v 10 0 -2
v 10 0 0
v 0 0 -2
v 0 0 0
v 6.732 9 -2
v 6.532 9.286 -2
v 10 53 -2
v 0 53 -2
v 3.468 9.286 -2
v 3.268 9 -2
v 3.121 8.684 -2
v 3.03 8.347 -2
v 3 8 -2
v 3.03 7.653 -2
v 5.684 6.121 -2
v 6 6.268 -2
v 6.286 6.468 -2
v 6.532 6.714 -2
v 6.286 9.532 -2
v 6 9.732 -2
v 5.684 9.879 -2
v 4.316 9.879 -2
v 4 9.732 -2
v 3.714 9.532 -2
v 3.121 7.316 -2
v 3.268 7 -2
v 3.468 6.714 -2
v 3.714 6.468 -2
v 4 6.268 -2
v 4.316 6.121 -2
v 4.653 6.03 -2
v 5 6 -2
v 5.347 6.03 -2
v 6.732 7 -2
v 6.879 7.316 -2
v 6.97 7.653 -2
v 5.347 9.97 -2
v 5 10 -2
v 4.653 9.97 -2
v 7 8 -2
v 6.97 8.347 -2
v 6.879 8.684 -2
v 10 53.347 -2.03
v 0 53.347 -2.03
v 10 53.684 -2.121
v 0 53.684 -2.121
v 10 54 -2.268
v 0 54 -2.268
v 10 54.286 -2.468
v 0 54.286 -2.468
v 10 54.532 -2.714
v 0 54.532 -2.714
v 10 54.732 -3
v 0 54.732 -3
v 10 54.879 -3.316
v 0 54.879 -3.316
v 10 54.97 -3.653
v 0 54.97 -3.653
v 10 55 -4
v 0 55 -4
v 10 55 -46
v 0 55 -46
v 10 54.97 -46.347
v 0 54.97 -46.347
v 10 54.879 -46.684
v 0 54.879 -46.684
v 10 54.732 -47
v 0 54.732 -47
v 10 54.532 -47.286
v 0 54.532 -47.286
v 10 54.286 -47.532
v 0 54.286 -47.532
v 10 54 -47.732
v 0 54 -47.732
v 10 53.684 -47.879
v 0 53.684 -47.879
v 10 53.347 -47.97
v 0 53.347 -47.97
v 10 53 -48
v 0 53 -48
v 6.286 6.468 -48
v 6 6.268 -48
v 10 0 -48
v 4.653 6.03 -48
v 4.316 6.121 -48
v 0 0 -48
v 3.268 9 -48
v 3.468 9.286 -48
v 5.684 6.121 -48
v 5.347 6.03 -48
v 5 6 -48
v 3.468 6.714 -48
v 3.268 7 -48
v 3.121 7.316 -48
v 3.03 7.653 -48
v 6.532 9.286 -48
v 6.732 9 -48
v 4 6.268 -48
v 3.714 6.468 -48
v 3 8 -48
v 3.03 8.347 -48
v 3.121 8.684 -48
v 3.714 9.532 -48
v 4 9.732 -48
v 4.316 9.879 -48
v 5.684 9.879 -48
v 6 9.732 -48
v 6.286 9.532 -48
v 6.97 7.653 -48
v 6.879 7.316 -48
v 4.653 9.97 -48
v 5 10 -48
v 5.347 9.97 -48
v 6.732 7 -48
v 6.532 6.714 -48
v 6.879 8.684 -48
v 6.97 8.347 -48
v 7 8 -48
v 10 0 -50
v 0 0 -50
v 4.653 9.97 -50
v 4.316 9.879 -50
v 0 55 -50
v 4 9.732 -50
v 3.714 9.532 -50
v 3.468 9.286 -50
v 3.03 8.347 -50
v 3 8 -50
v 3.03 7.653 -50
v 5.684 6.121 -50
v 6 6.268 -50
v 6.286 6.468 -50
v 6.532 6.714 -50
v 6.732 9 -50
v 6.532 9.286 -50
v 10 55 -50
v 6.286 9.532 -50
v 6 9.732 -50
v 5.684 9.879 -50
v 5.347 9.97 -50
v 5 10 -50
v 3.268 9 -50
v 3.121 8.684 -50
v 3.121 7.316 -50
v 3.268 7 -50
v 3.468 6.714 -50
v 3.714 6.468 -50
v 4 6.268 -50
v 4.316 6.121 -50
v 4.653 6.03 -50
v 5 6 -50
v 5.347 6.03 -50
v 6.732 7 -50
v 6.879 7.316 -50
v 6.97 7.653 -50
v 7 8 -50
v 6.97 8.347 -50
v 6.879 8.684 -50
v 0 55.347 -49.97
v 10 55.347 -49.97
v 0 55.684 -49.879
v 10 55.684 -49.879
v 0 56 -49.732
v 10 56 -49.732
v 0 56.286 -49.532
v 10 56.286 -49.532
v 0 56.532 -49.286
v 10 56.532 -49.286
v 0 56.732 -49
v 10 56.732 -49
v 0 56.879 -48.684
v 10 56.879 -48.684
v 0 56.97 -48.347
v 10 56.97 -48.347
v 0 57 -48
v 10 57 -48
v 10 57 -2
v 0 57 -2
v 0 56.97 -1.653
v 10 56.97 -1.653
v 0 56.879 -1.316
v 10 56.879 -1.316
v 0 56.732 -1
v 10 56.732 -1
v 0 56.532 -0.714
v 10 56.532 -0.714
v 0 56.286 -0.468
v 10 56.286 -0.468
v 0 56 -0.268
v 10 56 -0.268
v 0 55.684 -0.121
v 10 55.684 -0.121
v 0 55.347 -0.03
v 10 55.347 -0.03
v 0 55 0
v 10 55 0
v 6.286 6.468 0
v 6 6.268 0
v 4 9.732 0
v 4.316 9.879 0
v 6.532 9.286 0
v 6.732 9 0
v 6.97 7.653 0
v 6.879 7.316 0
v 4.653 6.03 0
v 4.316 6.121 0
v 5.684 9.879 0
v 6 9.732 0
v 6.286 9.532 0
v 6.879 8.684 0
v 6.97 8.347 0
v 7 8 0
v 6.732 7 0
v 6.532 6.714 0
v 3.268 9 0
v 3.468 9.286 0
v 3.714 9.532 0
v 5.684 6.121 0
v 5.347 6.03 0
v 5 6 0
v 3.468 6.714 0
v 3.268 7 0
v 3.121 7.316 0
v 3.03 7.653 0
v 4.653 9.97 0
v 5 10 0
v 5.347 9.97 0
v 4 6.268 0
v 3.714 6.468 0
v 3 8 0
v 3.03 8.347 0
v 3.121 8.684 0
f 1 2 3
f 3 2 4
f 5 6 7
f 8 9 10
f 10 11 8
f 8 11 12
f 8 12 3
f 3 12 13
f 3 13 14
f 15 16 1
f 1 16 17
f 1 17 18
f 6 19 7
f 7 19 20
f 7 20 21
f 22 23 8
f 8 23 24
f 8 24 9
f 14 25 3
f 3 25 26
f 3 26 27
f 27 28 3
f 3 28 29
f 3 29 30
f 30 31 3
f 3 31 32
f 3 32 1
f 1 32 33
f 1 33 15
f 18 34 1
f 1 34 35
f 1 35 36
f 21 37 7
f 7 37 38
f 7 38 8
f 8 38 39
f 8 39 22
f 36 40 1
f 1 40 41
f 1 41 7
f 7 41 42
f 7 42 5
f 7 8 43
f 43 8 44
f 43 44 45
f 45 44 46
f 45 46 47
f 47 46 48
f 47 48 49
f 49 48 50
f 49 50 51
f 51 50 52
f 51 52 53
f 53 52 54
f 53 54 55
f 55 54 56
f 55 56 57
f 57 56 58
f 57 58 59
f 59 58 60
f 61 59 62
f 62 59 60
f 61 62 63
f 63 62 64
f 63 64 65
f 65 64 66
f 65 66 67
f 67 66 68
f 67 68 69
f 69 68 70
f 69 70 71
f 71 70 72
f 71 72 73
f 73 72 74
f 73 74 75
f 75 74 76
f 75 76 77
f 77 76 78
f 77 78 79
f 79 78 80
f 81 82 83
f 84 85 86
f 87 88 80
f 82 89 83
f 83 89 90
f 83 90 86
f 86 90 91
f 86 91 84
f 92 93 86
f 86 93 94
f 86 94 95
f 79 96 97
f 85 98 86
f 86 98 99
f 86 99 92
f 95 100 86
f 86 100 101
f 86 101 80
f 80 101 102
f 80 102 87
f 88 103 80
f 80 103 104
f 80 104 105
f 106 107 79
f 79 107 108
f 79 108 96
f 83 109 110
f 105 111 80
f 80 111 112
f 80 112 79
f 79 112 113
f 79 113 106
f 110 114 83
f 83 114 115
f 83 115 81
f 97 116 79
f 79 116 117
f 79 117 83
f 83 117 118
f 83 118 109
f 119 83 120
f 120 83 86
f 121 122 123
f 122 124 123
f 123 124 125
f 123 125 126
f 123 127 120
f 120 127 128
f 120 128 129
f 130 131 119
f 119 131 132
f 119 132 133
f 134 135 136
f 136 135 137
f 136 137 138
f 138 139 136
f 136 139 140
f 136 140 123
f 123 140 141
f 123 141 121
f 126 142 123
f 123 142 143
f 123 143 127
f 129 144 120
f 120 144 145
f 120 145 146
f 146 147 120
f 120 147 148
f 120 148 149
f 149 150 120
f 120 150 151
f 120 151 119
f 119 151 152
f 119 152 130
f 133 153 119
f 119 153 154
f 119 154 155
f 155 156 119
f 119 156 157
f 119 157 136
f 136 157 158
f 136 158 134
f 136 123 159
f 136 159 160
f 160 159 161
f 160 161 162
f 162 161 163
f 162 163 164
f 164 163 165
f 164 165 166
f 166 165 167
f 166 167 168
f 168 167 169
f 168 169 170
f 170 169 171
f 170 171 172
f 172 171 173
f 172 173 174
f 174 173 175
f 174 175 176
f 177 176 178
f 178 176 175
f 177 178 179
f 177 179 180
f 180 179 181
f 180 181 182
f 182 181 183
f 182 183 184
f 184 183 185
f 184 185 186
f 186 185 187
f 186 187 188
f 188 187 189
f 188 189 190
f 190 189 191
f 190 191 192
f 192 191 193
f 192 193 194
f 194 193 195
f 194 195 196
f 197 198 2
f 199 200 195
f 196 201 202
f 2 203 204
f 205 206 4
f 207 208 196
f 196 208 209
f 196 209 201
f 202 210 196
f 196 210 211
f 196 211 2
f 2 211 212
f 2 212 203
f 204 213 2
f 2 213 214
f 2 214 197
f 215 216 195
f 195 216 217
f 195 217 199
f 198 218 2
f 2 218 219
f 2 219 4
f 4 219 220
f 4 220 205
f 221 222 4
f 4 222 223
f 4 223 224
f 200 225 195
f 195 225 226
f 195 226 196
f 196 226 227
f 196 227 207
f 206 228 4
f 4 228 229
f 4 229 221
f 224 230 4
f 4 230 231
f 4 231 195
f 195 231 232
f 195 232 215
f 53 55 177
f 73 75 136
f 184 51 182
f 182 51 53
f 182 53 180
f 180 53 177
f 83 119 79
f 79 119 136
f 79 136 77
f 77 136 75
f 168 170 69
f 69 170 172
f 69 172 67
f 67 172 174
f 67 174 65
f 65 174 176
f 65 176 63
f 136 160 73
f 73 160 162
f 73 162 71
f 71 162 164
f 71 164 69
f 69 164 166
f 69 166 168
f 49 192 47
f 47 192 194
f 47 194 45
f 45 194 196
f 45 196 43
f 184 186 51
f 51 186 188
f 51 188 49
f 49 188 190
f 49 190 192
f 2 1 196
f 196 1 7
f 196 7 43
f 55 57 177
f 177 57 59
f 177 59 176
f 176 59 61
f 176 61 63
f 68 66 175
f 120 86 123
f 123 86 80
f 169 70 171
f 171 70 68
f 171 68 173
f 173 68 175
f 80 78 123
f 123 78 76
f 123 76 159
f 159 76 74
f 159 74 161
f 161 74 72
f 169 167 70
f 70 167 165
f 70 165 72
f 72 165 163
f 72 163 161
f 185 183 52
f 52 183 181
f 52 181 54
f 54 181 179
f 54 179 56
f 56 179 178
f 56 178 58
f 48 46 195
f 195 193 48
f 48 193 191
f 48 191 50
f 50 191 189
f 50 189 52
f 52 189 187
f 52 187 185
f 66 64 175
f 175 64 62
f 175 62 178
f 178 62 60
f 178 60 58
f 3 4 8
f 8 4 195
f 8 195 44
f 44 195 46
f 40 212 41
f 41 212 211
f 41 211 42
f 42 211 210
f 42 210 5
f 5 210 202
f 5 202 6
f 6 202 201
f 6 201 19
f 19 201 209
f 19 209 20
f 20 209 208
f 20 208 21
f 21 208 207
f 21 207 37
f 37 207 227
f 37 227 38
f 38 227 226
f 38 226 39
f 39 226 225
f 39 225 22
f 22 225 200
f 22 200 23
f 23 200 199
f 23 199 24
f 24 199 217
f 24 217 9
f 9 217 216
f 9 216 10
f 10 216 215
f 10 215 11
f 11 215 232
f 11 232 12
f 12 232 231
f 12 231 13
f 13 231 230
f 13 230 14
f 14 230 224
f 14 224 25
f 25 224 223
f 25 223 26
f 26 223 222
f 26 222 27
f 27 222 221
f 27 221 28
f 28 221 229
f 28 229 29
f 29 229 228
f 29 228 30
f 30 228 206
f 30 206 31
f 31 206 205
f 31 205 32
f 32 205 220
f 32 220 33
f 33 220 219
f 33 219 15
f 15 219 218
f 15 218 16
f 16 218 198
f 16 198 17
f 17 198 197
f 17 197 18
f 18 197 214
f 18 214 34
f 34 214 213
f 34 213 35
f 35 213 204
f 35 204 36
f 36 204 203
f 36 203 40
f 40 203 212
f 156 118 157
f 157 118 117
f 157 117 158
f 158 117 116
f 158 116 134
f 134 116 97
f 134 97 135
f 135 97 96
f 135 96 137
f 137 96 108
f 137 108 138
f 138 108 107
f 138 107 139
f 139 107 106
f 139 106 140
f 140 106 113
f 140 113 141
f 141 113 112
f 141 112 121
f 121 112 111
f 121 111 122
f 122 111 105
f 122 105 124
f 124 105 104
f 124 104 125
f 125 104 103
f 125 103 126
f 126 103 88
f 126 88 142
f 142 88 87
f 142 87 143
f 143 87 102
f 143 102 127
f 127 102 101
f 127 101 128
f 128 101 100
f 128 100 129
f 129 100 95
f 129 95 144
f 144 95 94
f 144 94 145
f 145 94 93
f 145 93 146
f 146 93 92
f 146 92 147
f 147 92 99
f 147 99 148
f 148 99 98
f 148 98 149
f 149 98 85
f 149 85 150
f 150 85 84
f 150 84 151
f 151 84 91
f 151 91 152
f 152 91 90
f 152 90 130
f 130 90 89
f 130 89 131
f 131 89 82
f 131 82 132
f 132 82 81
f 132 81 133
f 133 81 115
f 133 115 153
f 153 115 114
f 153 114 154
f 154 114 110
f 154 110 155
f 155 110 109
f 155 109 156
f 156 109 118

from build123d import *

# Parameters (mm, degrees)
EXTRUDE_1_DEPTH     = 10
SKETCH_2_R          = 2
CUT_EXTRUDE_1_DEPTH = 77.47875522


with BuildPart() as part:
    # 草图1 → 凸台-拉伸1 (new body)
    with BuildSketch(Plane(origin=(0, 0, 0), x_dir=(0, 0, -1), z_dir=(1, 0, 0))):
        with BuildLine():
            Line((0, 0), (0, 55))
            ThreePointArc((0, 55), (0.585786438, 56.414213562), (2, 57))
            Line((2, 57), (48, 57))
            ThreePointArc((48, 57), (49.414213562, 56.414213562), (50, 55))
            Line((50, 55), (50, 0))
            Line((50, 0), (48, 0))
            Line((48, 0), (48, 53))
            ThreePointArc((48, 53), (47.414213562, 54.414213562), (46, 55))
            Line((46, 55), (4, 55))
            ThreePointArc((4, 55), (2.585786438, 54.414213562), (2, 53))
            Line((2, 53), (2, 0))
            Line((2, 0), (0, 0))
        make_face()
    extrude(amount=EXTRUDE_1_DEPTH)

    # 草图2 → 切除-拉伸1 (cut, through all)
    with BuildSketch(Plane.XY):
        with Locations((5, 8)):
            Circle(SKETCH_2_R)
    extrude(amount=-CUT_EXTRUDE_1_DEPTH, mode=Mode.SUBTRACT)


solid = part.part
